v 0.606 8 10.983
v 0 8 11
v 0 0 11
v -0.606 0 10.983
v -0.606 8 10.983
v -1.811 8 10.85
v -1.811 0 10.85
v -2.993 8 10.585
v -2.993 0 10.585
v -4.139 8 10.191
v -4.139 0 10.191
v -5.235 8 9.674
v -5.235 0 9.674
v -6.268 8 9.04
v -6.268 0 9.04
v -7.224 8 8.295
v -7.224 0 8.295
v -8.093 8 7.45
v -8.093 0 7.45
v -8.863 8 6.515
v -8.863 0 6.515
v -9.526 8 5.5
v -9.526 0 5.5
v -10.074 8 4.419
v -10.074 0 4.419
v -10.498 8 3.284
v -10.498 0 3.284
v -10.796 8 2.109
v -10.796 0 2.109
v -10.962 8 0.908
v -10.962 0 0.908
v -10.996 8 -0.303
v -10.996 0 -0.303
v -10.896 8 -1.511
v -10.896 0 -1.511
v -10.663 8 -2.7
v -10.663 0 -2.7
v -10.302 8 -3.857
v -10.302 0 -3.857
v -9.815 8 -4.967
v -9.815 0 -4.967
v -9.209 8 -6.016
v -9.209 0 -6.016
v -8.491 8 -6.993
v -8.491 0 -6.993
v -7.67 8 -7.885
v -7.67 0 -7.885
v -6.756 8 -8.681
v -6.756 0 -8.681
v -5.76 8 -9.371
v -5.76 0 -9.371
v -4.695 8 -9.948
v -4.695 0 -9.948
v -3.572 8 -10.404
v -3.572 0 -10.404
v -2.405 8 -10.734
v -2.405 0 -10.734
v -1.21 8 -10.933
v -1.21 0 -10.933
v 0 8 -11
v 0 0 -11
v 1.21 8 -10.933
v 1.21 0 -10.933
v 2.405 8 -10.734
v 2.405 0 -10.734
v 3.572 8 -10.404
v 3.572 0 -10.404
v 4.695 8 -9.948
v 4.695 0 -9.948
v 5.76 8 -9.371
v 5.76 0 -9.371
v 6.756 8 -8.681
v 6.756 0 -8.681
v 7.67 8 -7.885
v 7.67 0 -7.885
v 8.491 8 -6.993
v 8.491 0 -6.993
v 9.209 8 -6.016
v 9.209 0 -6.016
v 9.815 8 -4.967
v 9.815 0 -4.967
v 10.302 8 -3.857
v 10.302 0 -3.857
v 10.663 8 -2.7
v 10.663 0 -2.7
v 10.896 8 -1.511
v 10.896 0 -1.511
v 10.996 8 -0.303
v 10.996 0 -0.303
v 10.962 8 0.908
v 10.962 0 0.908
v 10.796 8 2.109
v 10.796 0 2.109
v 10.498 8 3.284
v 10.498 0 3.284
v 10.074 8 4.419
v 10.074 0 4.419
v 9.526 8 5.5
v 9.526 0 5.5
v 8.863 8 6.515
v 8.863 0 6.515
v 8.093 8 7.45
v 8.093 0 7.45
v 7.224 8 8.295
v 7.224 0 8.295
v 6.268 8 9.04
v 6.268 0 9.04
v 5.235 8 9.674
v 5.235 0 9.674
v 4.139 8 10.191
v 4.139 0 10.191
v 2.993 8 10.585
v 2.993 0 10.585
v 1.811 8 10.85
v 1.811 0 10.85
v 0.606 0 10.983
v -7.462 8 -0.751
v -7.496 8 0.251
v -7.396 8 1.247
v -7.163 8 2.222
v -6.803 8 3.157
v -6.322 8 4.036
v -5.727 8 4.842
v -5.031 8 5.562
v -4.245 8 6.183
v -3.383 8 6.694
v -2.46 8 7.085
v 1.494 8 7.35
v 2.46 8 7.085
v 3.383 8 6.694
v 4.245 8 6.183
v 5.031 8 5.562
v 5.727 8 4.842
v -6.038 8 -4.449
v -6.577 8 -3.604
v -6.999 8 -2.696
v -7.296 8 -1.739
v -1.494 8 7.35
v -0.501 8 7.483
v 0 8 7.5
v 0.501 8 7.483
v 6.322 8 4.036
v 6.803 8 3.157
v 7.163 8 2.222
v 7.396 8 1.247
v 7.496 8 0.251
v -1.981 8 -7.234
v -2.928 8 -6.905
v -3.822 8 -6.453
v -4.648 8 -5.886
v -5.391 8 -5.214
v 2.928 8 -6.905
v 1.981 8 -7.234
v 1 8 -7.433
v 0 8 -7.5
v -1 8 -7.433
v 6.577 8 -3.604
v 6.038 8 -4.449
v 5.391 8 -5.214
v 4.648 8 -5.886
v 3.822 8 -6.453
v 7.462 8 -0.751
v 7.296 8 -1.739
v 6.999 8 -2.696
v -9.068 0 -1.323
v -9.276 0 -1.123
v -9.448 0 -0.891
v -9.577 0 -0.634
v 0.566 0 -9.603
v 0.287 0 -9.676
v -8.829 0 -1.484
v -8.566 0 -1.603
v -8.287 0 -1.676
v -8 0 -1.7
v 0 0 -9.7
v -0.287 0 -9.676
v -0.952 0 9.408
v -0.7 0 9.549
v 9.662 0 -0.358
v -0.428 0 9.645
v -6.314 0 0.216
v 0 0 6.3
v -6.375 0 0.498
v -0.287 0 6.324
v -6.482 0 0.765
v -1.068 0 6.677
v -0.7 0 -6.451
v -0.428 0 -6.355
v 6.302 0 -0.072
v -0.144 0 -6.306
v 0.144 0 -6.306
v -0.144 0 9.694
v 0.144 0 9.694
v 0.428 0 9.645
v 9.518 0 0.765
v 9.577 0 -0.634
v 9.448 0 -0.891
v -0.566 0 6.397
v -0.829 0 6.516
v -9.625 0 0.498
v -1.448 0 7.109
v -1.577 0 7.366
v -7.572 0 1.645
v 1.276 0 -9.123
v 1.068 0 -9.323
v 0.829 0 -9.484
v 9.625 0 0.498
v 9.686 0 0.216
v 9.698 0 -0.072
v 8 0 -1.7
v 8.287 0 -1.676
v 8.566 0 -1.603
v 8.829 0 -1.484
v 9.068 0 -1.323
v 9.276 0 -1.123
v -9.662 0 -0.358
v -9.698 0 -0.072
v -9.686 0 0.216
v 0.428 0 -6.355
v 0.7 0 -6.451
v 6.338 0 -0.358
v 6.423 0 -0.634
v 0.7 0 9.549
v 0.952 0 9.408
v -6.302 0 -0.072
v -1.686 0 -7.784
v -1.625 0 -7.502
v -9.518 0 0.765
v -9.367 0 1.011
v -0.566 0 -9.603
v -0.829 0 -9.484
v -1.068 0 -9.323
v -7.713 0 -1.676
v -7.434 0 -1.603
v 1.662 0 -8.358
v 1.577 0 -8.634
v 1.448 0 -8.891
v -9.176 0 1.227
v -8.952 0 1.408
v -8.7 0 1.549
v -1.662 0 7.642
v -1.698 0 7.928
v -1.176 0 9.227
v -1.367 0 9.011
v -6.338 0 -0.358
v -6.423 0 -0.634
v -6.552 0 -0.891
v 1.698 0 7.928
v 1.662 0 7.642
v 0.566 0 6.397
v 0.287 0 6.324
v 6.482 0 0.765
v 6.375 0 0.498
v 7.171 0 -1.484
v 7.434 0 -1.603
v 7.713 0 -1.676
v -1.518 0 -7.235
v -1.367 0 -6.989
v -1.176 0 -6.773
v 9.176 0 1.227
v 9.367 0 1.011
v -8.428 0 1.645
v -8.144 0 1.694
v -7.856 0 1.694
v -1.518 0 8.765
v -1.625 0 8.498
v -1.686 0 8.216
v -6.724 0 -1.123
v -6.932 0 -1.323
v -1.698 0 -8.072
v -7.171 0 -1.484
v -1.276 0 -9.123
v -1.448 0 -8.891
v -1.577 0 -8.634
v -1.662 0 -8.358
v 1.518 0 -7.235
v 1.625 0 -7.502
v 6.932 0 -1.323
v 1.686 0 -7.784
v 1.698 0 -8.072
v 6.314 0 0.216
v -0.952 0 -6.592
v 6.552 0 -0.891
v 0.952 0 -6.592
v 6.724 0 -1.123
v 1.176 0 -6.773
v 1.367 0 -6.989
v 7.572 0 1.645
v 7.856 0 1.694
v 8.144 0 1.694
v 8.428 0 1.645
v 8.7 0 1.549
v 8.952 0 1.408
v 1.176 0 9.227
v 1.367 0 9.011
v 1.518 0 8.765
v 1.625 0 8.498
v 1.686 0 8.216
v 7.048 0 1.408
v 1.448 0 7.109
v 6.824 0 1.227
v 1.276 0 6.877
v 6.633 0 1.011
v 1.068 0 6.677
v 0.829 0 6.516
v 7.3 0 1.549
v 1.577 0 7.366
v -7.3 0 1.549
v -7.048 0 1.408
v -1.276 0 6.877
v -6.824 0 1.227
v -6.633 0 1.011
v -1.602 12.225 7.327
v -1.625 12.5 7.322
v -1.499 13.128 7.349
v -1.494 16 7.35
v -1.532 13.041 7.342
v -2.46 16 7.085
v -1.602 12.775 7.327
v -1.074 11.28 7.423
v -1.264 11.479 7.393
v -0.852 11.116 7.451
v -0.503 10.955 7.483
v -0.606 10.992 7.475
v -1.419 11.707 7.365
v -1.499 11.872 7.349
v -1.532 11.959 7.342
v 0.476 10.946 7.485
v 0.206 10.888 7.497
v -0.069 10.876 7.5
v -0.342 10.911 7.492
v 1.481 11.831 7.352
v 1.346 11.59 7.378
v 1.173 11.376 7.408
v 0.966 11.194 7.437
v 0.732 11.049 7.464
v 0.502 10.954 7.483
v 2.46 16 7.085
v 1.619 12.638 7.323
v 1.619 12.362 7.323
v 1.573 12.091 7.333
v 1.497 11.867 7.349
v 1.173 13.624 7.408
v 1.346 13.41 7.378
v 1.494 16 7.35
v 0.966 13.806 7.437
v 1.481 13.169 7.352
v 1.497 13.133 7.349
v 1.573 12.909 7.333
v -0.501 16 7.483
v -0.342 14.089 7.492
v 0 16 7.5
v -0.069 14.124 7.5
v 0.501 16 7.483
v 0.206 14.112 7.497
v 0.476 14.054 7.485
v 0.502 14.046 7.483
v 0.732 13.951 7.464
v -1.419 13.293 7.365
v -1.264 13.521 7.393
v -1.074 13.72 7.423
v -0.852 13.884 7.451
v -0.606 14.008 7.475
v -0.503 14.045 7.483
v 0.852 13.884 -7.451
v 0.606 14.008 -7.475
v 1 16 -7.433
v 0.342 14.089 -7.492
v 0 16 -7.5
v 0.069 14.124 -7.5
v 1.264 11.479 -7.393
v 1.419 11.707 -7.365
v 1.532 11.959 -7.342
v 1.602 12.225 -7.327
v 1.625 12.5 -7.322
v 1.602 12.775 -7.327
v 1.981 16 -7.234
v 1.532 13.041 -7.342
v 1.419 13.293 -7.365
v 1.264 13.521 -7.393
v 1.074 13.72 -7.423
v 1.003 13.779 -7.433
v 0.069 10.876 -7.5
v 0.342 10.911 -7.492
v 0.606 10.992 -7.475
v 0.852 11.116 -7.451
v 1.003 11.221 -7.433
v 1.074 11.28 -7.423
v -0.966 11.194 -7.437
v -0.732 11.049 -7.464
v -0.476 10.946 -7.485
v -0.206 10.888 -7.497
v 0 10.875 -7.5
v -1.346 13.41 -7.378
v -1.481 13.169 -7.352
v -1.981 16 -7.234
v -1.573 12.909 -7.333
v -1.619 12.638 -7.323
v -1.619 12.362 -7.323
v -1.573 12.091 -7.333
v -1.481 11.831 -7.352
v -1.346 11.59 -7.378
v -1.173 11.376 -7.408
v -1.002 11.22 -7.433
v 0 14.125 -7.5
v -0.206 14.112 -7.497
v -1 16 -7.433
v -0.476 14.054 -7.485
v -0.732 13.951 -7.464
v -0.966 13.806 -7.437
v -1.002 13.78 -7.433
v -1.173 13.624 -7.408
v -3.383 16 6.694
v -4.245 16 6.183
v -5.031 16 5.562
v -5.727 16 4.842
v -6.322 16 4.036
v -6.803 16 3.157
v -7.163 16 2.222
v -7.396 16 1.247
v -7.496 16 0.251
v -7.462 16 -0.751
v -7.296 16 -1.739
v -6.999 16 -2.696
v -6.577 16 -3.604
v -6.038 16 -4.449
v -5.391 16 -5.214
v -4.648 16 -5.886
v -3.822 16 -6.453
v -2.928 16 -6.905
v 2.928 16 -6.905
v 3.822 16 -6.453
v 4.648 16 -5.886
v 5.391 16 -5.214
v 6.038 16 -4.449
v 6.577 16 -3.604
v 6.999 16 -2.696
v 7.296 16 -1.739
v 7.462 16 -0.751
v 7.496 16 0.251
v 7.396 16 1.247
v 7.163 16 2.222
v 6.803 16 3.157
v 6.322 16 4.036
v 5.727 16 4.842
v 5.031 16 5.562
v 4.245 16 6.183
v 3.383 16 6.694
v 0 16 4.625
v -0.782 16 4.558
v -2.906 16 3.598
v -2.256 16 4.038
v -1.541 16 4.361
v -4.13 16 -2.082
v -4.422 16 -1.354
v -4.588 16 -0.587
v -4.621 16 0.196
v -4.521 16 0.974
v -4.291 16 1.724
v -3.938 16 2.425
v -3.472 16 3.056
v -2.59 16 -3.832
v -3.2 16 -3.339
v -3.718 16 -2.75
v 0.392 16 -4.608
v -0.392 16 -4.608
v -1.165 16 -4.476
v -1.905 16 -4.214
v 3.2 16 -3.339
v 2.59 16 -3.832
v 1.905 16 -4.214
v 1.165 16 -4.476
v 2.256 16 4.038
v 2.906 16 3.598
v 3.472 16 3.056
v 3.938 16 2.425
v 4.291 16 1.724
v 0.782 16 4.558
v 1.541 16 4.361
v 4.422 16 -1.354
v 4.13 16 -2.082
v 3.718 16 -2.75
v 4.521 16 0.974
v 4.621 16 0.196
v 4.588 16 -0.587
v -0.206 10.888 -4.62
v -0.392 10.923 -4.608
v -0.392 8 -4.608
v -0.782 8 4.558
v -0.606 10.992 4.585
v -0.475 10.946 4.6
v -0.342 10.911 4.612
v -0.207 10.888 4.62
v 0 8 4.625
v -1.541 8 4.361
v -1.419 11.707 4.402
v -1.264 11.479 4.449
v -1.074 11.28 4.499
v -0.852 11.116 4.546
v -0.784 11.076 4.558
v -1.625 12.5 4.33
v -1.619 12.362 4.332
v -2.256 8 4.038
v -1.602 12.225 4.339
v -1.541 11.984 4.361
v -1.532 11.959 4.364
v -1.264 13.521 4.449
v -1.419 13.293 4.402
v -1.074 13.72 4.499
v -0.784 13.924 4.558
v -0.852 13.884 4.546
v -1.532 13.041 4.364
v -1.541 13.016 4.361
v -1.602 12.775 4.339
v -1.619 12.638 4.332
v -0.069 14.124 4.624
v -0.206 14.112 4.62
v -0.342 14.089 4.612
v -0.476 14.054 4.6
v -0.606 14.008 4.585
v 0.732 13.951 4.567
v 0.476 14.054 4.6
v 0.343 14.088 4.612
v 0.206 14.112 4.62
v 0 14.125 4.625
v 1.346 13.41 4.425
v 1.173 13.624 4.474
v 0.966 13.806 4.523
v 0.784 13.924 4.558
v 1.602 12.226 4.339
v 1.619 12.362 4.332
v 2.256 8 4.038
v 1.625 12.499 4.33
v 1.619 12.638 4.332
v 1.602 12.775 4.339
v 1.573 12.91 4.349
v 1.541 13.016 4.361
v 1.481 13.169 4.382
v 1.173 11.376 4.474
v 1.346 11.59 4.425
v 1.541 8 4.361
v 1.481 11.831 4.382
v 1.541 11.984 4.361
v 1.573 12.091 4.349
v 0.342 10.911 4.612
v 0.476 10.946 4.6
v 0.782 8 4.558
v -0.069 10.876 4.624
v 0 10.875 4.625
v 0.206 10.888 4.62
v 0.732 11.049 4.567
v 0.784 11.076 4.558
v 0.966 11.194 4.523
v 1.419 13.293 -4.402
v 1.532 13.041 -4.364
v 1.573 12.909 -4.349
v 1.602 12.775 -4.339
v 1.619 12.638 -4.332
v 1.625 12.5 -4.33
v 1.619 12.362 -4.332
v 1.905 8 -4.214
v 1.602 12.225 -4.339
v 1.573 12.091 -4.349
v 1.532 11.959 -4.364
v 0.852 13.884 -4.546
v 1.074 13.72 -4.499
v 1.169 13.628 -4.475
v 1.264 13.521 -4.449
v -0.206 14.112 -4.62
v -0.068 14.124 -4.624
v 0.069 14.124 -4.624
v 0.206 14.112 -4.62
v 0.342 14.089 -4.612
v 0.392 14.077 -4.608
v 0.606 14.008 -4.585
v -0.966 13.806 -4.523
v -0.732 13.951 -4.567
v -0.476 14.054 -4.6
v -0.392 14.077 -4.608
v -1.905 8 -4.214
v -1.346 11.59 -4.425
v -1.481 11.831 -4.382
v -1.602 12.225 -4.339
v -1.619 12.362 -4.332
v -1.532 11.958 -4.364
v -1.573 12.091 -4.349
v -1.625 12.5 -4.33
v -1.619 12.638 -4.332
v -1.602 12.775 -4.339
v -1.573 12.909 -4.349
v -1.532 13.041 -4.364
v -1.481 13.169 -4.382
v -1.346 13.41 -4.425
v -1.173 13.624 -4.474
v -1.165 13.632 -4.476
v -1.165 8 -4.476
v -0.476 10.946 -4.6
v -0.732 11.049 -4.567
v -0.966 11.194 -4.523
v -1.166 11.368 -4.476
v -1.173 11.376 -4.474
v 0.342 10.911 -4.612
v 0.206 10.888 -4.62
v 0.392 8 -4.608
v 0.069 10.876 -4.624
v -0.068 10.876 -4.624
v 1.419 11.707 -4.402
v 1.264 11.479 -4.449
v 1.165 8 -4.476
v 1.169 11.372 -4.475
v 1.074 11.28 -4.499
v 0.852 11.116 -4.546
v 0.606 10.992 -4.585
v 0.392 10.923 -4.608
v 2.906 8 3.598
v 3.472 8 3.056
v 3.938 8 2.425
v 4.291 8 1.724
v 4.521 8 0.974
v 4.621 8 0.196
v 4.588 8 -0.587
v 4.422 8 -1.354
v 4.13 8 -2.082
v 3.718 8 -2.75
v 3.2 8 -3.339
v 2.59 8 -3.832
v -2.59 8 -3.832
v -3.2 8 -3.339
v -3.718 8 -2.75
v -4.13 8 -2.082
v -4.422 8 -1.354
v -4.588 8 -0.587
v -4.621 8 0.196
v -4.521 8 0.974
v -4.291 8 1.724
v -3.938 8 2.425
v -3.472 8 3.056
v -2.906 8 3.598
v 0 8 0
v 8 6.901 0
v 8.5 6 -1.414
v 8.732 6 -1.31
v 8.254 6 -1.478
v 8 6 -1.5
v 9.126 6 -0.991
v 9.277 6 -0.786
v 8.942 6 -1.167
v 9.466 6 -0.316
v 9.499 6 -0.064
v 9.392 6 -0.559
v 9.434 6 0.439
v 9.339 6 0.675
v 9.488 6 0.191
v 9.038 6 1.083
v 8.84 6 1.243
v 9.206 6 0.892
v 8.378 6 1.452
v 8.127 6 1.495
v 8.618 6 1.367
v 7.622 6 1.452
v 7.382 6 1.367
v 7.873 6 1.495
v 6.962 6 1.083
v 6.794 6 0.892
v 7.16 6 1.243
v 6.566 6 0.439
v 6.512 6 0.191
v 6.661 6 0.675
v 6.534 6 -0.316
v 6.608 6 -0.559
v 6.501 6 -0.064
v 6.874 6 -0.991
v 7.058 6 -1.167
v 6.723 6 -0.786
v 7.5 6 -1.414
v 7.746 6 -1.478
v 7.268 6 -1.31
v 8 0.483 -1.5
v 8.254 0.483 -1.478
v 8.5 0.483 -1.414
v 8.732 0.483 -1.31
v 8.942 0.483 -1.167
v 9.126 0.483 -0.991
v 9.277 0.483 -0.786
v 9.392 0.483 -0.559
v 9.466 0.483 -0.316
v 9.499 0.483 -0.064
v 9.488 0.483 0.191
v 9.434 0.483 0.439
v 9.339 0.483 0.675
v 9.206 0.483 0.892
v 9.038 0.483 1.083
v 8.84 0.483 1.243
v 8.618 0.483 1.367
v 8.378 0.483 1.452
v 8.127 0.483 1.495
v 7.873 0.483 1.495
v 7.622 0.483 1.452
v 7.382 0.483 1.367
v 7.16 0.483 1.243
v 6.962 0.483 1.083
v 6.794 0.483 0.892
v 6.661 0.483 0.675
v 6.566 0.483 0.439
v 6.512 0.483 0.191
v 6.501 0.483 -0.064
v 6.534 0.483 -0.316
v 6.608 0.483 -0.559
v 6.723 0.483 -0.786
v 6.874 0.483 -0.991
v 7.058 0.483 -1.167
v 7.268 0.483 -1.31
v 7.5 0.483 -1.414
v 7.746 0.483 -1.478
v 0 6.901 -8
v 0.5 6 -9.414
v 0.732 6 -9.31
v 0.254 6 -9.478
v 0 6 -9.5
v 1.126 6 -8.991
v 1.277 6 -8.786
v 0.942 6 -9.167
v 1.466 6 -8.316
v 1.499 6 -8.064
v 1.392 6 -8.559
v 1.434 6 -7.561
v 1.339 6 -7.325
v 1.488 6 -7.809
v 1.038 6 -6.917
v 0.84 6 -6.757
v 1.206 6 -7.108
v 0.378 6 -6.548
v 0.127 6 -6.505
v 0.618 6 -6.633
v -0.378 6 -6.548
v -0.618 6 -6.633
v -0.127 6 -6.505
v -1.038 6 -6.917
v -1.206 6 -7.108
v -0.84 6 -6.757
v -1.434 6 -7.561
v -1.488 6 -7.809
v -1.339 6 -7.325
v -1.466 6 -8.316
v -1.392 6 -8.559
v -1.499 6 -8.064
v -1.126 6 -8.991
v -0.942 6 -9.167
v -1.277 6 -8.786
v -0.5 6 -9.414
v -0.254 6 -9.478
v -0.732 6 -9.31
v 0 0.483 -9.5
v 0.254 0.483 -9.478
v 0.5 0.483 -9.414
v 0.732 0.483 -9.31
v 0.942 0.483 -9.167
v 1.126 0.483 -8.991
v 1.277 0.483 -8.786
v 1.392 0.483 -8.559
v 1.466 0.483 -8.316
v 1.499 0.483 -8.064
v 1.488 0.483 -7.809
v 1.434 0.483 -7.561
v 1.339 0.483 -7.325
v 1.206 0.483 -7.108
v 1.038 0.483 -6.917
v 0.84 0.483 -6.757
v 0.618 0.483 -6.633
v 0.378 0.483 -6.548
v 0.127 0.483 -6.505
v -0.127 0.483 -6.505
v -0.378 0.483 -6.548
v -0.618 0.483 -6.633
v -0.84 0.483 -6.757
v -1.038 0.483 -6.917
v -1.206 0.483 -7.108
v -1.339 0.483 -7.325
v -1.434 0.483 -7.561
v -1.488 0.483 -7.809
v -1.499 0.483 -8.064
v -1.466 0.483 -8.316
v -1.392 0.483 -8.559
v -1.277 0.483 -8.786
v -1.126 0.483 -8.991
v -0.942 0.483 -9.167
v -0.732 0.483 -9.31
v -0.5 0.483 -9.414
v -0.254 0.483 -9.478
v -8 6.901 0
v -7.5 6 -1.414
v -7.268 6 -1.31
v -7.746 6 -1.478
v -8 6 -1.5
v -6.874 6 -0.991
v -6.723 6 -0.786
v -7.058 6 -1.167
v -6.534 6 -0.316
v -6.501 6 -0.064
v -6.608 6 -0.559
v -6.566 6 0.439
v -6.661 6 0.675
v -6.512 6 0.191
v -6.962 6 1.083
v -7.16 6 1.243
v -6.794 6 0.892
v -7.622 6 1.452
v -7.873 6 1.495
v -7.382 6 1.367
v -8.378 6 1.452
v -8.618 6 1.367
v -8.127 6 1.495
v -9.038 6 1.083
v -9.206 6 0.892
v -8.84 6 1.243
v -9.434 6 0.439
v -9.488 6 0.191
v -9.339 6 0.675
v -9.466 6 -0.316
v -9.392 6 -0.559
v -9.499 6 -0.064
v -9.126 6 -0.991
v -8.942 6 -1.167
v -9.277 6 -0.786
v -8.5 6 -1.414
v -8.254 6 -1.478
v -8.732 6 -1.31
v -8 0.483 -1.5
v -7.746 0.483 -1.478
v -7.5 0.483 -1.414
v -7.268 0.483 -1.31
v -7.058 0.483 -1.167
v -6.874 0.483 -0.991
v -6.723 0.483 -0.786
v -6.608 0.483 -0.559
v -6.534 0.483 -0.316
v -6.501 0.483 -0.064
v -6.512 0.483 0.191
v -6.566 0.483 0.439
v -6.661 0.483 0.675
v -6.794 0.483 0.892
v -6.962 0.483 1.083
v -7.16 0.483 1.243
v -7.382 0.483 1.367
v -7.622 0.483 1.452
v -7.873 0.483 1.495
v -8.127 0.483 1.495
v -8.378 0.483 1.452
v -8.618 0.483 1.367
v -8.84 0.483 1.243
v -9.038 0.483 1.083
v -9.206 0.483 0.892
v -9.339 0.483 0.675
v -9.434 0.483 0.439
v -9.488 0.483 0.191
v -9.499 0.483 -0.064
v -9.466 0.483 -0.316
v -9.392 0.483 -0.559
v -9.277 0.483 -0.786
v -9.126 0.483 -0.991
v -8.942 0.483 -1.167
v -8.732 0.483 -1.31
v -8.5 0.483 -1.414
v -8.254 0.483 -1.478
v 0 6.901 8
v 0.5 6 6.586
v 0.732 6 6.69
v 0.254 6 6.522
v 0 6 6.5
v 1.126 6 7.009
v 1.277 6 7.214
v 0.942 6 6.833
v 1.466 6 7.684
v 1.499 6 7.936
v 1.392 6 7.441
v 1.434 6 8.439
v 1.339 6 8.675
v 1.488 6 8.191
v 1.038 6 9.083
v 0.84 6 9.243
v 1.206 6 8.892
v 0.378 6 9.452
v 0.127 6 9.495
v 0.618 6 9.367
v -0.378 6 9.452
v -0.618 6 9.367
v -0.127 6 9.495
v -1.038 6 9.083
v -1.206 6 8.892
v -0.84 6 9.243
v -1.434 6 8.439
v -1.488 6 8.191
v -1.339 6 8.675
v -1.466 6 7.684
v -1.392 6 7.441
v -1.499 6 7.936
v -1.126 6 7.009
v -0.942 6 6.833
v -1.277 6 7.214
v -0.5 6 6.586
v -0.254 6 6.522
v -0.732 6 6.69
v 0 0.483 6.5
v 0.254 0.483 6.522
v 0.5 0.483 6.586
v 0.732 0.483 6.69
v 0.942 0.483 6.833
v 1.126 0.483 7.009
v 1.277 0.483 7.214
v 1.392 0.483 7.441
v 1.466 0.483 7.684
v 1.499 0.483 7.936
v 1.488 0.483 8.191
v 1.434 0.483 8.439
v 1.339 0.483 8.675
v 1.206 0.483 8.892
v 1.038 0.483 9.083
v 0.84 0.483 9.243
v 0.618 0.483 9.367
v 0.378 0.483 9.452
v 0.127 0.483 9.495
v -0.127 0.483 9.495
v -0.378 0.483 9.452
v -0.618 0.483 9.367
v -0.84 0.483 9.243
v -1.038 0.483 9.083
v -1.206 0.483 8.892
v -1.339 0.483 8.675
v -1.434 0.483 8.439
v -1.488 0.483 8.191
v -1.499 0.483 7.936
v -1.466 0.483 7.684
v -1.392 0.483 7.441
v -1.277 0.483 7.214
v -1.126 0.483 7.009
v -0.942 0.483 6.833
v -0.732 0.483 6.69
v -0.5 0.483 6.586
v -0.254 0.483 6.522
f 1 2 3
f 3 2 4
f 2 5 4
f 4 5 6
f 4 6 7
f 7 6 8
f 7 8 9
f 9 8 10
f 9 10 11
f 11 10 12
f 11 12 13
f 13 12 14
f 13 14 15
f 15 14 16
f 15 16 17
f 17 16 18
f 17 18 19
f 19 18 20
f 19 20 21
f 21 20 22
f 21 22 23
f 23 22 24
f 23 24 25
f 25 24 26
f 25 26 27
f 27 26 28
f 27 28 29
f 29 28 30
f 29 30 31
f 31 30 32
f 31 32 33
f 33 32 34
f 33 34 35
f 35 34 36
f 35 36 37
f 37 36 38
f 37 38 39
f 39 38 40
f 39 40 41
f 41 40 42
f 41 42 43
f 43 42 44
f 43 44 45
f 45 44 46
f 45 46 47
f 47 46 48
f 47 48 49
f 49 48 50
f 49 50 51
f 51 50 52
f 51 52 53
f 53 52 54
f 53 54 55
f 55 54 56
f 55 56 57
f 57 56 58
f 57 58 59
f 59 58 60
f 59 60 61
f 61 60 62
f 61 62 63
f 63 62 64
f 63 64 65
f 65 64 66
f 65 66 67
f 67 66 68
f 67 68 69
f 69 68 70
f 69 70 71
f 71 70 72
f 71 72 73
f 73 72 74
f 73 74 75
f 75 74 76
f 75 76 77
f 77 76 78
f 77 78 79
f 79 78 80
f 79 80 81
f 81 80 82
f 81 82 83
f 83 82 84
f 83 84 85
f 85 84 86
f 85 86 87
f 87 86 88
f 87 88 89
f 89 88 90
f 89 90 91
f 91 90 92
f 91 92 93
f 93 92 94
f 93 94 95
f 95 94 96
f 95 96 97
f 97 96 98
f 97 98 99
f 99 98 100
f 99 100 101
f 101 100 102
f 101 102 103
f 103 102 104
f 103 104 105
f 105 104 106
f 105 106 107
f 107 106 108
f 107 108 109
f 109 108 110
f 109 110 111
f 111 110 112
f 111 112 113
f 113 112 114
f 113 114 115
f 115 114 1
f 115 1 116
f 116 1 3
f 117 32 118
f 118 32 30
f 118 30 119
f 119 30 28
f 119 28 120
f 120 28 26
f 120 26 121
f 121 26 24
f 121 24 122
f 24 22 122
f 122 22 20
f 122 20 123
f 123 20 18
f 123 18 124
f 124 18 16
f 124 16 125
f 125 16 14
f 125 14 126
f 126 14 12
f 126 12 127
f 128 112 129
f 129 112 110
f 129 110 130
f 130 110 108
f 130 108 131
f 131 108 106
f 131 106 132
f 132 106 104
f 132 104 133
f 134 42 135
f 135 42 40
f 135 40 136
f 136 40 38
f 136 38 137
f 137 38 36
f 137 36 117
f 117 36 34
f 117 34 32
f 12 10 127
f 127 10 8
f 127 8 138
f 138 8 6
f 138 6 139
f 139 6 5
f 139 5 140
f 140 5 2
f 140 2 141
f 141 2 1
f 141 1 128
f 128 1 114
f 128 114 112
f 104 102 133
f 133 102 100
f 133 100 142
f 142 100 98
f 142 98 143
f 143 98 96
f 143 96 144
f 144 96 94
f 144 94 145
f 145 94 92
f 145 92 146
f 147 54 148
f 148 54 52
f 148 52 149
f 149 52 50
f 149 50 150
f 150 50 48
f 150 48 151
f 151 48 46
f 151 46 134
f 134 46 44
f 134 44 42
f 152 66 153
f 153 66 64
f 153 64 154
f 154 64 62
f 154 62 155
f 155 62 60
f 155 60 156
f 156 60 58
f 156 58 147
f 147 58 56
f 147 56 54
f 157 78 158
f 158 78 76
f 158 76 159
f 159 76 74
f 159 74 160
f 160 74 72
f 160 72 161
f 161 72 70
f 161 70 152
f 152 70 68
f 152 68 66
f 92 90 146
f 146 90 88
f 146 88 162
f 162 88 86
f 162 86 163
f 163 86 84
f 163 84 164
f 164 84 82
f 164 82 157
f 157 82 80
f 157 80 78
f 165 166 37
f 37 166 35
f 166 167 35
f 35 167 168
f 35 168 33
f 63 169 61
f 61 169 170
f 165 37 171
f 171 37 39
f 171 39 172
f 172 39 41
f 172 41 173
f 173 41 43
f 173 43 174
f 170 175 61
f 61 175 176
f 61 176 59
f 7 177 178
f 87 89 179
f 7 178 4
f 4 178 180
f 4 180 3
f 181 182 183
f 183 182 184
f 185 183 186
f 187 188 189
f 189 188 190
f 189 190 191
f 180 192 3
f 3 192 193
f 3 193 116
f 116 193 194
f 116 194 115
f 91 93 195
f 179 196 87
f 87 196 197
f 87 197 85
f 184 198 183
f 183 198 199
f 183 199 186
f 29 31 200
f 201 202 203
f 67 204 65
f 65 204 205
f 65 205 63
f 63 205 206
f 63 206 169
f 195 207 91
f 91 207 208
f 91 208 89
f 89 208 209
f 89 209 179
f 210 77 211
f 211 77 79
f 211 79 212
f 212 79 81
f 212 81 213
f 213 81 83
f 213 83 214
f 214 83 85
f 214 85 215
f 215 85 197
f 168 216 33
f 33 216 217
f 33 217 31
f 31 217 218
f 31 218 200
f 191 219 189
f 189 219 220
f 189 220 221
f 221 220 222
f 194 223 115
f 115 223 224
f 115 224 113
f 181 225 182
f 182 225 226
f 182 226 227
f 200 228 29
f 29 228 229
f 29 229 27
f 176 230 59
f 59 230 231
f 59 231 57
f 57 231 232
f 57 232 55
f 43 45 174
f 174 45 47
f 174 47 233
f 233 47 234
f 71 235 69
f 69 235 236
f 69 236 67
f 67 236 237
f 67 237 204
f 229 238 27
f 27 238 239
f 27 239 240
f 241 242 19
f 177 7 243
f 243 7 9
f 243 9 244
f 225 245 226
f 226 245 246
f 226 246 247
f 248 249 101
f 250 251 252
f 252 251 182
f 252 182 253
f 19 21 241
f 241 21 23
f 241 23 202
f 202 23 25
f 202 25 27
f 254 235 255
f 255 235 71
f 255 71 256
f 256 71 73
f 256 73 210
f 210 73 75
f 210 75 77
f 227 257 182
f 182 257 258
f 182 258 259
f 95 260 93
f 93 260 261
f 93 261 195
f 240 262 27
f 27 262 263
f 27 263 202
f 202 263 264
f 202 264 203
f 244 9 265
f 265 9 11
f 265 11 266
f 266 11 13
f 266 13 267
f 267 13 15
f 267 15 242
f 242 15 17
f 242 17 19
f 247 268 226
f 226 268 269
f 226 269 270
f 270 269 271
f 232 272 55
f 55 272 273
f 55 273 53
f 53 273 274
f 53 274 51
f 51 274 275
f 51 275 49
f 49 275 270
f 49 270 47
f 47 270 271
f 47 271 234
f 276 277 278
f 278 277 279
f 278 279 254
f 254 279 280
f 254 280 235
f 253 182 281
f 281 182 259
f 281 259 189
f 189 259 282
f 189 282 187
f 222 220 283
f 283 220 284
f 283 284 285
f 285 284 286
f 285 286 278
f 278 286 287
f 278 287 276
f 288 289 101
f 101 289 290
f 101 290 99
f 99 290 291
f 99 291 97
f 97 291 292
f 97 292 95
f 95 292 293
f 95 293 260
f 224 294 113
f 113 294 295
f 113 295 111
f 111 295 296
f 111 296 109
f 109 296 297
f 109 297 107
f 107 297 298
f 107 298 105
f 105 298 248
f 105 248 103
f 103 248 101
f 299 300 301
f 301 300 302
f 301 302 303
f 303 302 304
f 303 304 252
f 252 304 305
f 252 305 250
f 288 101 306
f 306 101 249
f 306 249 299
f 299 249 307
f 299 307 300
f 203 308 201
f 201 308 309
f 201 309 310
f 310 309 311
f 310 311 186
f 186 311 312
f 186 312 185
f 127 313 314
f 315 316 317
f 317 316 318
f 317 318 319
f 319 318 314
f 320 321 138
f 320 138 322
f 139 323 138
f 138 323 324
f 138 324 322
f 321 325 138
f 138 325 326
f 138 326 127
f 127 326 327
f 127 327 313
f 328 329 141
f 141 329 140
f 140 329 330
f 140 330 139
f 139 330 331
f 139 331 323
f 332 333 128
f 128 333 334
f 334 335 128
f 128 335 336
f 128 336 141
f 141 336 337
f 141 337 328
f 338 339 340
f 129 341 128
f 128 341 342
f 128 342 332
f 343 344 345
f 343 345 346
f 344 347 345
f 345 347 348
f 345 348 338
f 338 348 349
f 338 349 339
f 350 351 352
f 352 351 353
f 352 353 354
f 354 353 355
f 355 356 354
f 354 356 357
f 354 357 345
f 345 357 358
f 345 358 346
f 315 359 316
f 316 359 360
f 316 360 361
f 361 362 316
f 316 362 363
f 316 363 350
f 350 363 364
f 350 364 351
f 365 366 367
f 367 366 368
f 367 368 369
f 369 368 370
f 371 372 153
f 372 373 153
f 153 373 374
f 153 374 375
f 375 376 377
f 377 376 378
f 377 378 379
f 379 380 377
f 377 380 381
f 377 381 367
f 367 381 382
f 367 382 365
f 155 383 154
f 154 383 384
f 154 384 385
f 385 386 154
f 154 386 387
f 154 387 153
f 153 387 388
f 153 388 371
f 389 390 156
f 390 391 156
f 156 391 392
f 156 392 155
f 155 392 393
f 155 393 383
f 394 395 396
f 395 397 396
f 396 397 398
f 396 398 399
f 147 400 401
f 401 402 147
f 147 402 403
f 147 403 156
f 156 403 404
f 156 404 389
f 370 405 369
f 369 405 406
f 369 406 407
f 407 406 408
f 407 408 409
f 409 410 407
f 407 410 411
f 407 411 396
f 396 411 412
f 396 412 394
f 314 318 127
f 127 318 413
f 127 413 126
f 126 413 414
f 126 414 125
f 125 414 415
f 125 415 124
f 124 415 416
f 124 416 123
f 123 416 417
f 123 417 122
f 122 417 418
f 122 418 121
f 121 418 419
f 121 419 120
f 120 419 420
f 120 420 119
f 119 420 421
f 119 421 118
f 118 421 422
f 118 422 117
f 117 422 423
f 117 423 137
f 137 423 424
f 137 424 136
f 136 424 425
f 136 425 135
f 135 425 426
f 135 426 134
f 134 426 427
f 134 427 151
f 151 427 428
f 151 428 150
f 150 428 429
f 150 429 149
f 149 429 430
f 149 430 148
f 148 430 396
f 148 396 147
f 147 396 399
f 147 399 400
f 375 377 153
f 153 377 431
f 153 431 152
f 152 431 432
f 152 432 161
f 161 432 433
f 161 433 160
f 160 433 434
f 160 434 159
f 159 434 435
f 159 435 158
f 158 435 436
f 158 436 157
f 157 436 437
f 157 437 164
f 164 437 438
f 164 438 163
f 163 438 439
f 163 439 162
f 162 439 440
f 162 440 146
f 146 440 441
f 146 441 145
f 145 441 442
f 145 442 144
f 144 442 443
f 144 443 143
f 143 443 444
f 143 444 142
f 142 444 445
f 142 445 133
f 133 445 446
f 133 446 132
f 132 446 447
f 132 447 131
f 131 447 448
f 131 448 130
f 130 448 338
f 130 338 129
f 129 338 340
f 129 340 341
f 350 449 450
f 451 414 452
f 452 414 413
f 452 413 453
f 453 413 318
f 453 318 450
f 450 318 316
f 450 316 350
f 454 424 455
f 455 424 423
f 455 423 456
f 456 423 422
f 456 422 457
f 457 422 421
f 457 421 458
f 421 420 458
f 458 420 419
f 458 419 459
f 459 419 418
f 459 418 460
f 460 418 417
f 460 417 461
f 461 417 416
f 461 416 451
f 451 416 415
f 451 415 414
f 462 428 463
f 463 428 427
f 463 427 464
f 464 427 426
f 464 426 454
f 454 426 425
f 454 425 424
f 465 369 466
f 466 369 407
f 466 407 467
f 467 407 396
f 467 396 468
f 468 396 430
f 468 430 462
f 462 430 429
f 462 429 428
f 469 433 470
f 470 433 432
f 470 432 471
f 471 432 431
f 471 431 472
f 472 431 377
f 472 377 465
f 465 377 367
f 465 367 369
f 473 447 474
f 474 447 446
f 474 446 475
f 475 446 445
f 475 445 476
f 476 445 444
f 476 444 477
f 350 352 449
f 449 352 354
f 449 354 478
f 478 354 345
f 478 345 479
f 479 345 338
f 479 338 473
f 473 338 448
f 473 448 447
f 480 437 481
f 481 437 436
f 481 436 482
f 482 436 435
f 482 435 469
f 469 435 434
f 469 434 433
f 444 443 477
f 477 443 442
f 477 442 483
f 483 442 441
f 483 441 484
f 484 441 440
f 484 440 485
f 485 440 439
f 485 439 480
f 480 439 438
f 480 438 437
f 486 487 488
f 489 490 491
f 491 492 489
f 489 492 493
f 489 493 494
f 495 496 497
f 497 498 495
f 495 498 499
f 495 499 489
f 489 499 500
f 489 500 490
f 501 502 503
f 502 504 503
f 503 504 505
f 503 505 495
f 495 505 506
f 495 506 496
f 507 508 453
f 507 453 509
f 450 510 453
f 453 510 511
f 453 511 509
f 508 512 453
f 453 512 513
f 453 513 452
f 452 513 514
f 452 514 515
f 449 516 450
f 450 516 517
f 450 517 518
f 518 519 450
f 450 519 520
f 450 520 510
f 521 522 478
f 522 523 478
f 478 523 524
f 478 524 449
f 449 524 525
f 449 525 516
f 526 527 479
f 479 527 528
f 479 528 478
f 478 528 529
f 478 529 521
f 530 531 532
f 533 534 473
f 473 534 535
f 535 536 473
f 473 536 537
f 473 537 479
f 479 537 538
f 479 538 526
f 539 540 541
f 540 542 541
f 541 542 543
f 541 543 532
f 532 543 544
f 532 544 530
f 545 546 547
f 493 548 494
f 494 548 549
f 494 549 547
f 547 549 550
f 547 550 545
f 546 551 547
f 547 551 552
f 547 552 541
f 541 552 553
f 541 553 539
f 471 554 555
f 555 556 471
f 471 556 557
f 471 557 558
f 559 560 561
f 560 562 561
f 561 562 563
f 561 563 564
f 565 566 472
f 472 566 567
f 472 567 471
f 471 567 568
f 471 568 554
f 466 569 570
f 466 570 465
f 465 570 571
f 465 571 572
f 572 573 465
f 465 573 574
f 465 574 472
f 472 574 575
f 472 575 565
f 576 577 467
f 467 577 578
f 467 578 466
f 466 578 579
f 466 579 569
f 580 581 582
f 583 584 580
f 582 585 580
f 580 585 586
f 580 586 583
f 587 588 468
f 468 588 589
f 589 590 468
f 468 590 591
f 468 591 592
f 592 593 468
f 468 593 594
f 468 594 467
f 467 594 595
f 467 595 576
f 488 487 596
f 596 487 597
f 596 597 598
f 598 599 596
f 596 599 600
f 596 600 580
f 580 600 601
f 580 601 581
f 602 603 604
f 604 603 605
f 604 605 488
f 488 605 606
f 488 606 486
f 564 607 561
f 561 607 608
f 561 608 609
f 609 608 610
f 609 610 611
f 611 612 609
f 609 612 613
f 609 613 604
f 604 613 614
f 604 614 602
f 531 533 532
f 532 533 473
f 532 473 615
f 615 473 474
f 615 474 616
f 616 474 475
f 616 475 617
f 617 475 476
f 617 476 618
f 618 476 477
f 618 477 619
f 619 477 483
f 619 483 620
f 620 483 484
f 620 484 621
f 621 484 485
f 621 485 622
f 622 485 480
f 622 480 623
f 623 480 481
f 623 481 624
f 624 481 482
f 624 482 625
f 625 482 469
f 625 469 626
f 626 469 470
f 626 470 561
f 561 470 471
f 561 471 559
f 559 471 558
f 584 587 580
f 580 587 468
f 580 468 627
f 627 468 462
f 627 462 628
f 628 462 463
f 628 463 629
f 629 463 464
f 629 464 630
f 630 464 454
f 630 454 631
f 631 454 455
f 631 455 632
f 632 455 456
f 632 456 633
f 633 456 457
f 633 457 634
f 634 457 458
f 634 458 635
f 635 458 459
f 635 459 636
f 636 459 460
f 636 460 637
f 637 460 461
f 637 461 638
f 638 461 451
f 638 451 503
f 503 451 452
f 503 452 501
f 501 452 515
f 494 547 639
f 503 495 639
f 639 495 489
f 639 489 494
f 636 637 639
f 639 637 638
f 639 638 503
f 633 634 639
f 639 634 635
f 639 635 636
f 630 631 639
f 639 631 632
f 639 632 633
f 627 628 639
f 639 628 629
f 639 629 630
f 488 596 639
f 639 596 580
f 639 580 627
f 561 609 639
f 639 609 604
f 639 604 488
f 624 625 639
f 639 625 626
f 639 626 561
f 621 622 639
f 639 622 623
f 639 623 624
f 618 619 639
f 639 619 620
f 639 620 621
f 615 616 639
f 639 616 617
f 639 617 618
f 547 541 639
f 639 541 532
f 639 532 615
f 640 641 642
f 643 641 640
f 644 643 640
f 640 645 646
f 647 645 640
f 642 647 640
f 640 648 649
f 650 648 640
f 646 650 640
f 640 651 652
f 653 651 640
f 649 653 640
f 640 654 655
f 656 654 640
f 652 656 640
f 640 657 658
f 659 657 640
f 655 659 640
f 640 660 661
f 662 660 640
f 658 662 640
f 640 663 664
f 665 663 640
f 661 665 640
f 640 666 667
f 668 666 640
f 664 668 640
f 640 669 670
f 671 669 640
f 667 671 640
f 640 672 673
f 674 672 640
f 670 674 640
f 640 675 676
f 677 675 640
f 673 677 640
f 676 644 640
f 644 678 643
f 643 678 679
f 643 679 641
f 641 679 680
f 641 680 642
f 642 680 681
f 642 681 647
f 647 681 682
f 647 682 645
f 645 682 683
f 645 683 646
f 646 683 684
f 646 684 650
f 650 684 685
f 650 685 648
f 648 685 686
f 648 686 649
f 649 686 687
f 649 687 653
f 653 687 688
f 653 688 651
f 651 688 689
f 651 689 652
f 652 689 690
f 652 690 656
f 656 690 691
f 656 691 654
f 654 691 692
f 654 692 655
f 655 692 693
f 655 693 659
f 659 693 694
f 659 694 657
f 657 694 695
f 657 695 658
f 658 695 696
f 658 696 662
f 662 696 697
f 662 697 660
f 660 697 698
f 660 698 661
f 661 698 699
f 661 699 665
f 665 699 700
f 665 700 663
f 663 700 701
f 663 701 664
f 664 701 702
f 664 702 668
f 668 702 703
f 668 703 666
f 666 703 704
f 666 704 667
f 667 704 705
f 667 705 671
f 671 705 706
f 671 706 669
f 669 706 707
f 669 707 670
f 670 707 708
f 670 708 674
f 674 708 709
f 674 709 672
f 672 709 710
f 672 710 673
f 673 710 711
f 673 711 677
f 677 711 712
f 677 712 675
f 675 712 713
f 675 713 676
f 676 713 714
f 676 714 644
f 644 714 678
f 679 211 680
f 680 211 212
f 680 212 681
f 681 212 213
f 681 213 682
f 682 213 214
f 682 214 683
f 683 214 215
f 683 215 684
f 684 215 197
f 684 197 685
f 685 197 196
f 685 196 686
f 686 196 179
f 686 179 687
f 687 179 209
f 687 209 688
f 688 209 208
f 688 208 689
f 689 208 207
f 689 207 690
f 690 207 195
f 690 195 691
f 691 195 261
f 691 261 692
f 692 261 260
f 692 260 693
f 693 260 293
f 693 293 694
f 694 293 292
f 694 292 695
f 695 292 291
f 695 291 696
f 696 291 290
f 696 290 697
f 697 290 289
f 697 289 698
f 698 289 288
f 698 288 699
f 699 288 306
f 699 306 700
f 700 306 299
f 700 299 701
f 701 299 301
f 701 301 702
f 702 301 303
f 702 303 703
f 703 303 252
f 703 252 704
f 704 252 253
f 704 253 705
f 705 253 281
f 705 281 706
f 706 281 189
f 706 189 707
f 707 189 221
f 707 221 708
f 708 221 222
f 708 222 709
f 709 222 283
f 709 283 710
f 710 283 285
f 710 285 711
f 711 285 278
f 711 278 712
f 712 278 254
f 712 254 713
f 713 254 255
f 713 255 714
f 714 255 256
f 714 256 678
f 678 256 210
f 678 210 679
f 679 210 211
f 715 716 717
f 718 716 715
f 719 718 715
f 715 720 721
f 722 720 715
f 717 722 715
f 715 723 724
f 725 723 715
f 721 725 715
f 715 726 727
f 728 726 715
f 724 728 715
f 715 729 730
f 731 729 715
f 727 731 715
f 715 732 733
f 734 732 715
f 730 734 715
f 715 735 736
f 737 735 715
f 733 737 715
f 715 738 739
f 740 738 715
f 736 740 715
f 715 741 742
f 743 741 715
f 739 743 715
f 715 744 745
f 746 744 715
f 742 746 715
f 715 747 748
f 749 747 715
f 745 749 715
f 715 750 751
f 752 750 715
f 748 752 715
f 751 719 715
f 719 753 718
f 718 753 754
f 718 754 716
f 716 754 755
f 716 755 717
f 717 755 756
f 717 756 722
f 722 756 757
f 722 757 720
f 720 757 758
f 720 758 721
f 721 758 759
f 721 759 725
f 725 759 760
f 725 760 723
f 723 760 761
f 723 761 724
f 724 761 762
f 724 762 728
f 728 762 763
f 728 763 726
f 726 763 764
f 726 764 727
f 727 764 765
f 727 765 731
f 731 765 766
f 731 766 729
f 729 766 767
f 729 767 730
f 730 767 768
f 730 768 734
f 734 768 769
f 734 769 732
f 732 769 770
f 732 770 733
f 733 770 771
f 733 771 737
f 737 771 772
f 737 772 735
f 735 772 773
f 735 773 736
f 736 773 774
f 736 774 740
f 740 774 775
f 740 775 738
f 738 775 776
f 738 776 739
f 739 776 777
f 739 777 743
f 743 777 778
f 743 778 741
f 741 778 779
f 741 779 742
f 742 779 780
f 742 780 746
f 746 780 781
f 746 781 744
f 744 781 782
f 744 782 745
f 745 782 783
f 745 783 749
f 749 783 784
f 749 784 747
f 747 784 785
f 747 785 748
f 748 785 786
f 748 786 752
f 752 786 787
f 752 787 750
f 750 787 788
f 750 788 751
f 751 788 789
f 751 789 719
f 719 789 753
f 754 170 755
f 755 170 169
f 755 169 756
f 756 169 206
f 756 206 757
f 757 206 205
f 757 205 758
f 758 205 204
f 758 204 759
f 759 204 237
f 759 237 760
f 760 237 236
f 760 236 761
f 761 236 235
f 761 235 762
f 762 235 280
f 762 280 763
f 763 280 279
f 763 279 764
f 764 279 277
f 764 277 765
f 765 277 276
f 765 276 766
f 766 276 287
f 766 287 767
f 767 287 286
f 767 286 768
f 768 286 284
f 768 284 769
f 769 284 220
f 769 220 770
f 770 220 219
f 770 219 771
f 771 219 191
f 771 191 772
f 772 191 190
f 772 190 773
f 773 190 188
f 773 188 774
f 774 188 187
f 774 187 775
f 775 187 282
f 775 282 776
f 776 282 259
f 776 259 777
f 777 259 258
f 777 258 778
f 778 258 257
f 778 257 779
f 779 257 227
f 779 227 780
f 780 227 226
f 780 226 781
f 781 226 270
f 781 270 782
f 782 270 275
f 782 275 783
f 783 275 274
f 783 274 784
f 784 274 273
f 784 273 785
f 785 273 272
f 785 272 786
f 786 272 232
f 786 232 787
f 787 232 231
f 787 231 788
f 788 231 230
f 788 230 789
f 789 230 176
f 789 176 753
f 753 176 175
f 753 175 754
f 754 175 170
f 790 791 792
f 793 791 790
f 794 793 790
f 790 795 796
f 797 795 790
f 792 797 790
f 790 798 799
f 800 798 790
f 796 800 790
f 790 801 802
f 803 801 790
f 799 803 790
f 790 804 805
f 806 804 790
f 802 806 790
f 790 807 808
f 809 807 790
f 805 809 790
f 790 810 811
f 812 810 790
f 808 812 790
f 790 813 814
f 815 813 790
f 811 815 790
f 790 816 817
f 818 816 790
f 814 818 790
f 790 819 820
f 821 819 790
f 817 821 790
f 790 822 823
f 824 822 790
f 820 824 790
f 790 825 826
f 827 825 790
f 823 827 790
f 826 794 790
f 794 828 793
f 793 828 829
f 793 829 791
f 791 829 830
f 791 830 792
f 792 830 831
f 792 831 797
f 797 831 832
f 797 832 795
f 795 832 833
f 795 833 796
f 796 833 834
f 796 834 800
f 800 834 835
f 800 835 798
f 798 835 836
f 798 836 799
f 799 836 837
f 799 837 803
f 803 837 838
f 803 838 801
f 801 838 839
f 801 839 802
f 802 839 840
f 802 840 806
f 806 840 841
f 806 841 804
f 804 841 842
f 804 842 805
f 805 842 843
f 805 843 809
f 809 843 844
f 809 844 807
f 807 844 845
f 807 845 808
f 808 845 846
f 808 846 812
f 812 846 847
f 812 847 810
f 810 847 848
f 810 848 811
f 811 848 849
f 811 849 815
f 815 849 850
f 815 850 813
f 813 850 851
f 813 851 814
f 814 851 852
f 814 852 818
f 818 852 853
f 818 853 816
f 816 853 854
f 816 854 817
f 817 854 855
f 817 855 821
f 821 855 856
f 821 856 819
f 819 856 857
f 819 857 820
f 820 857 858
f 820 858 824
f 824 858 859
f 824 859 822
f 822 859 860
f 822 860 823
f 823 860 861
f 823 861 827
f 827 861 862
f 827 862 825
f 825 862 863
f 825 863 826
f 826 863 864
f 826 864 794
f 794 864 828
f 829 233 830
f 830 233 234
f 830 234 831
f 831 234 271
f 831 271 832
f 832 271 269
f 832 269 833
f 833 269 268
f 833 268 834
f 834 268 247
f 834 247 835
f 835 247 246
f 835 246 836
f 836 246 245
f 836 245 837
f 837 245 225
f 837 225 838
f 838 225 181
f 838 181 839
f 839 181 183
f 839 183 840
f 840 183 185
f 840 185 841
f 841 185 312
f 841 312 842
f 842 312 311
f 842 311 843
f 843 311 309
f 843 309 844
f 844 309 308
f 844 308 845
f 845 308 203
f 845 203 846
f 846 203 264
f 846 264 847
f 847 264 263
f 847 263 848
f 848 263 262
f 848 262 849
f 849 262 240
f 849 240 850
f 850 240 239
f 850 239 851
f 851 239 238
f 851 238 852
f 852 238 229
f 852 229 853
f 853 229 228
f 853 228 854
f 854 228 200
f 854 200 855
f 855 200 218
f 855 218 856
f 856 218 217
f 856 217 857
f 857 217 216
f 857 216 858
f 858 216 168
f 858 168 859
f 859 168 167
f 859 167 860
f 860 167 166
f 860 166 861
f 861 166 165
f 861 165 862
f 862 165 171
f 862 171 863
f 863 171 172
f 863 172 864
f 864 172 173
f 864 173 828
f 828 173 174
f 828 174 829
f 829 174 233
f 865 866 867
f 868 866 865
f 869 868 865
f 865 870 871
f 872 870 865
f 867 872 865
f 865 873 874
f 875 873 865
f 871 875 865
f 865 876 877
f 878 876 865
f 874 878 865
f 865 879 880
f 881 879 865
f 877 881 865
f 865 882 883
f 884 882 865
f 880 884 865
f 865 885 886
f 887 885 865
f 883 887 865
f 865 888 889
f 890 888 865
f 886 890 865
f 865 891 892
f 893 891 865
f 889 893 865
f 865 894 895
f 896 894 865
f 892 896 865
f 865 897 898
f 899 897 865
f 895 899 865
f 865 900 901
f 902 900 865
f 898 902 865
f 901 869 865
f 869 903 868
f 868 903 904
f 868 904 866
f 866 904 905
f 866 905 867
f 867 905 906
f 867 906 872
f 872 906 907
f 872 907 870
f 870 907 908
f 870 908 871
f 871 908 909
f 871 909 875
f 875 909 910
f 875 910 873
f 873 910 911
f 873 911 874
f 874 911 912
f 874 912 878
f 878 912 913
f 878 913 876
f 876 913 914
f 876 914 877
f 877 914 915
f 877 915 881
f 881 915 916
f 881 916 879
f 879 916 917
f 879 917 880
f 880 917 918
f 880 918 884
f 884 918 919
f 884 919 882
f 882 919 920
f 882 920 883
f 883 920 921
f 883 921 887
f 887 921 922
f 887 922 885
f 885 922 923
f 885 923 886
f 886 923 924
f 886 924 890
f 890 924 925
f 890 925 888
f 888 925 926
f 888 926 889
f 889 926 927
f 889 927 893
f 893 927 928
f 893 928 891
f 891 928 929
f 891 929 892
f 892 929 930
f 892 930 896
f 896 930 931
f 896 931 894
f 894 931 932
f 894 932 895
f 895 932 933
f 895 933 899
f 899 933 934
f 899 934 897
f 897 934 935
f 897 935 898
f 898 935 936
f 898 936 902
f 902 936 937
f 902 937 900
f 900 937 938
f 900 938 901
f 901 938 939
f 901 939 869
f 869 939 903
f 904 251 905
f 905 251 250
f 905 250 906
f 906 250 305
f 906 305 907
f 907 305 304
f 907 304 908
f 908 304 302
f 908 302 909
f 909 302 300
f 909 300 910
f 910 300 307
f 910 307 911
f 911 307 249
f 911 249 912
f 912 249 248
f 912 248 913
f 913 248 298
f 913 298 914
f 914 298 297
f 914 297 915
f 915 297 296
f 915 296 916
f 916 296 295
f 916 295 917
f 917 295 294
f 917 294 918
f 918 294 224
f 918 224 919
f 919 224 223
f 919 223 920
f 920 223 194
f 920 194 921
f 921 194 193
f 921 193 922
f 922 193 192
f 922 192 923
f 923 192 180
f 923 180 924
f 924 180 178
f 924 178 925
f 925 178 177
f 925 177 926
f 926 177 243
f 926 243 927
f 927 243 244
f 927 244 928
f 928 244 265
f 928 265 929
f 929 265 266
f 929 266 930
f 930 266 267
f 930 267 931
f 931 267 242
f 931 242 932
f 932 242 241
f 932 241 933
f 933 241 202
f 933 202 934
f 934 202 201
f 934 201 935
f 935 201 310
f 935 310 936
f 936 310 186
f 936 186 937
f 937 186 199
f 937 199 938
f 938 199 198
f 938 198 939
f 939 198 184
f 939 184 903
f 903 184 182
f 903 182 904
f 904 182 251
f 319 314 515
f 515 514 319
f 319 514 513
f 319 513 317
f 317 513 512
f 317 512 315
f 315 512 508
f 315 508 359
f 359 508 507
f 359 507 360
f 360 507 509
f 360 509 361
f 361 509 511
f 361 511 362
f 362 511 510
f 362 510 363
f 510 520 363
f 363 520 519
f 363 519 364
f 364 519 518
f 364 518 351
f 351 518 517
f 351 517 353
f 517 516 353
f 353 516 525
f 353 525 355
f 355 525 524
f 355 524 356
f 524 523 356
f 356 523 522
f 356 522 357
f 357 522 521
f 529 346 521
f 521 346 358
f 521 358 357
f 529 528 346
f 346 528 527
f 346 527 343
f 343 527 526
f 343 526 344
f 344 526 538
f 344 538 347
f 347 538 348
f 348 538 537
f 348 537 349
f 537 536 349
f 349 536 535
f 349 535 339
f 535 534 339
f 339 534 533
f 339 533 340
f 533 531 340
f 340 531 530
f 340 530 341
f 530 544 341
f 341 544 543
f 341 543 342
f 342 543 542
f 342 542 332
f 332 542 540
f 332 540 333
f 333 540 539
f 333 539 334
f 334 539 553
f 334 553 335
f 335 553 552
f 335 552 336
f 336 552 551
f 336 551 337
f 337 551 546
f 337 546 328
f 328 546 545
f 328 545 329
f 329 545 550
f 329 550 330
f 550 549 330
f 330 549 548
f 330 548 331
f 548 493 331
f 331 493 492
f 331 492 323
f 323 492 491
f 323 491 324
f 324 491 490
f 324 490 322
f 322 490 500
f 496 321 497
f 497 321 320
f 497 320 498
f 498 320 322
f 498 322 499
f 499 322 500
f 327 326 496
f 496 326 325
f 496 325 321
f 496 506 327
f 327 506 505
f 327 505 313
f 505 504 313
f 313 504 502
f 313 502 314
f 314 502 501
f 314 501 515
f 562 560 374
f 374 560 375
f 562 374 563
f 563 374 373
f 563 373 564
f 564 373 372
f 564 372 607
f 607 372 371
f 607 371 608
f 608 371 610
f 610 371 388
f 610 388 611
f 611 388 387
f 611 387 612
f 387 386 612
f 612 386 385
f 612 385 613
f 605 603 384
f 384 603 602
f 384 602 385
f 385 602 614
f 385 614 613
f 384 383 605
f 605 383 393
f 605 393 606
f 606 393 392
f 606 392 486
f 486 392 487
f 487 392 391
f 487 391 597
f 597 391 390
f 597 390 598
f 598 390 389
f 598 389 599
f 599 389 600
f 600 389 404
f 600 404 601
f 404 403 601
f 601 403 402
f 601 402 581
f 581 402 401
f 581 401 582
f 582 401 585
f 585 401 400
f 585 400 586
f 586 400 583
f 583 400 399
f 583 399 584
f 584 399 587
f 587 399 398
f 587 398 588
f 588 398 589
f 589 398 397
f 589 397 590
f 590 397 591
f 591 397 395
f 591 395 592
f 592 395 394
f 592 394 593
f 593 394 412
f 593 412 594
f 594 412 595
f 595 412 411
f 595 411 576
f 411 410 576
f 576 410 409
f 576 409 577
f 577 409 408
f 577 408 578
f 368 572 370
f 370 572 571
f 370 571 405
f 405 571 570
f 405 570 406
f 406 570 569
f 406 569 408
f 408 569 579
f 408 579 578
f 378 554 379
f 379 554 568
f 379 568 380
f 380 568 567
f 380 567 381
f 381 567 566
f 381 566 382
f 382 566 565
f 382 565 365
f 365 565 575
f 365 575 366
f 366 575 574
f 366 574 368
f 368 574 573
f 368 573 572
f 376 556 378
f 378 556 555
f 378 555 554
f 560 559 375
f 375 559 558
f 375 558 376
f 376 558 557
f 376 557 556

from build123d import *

# Parameters (mm, degrees)
SKETCH1_R           = 11
BOSS_EXTRUDE1_DEPTH = 8
SKETCH2_R           = 7.5
BOSS_EXTRUDE2_DEPTH = 8
SKETCH3_R           = 4.625
CUT_EXTRUDE1_DEPTH  = 8
CIRPATTERN1_COUNT   = 4
SKETCH10_W          = 1.625
SKETCH10_H          = 11


with BuildPart() as part:
    # Sketch1 → Boss-Extrude1 (new body)
    with BuildSketch(Plane(origin=(0, 0, 0), x_dir=(1, 0, 0), z_dir=(0, 1, 0))):
        with Locations(Location((0, 0, 0), (0, 0, 270))):
            Circle(SKETCH1_R)
    extrude(amount=BOSS_EXTRUDE1_DEPTH)

    # Sketch2 → Boss-Extrude2 (add)
    with BuildSketch(Plane(origin=(0, 8, 0), x_dir=(1, 0, 0), z_dir=(0, 1, 0))):
        with Locations(Location((0, 0, 0), (0, 0, 270))):
            Circle(SKETCH2_R)
    extrude(amount=BOSS_EXTRUDE2_DEPTH)

    # Sketch3 → Cut-Extrude1 (cut)
    with BuildSketch(Plane(origin=(0, 16, 0), x_dir=(1, 0, 0), z_dir=(0, 1, 0))):
        with Locations(Location((0, 0, 0), (0, 0, 270))):
            Circle(SKETCH3_R)
    extrude(amount=-CUT_EXTRUDE1_DEPTH, mode=Mode.SUBTRACT)

    # Sketch7 → Ø3.0mm Dowel Hole1 (revolve, cut)
    with BuildSketch(Plane(origin=(8, 0, 0), x_dir=(0, 0, -1), z_dir=(1, 0, 0))):
        Polygon((0, 0), (0, 6.901290929), (1.5, 6), (1.5, 0.482842712), (1.7, 0), align=None)
    f_3_0mm_dowel_hole1 = revolve(axis=Axis((8, -6.35, 0), (0, 1, 0)), mode=Mode.SUBTRACT)

    # CirPattern1: Ø3.0mm Dowel Hole1 ×4 about axis
    cirpattern1_axis = Axis((0, 0, 0), (0, 1, 0))
    for i in range(1, CIRPATTERN1_COUNT):
        add(f_3_0mm_dowel_hole1.rotate(cirpattern1_axis, i * 360 / CIRPATTERN1_COUNT), mode=Mode.SUBTRACT)

    # Sketch10 → Ø5.0mm Dowel Hole1 (revolve, cut)
    with BuildSketch(Plane(origin=(0, 12.5, 0), x_dir=(0, 1, 0), z_dir=(1, 0, 0))):
        with Locations((0.8125, 5.5)):
            Rectangle(SKETCH10_W, SKETCH10_H)
    f_5_0mm_dowel_hole1 = revolve(axis=Axis((0, 12.5, -6.35), (0, 0, 1)), mode=Mode.SUBTRACT)

    # Mirror1: Ø5.0mm Dowel Hole1 across plane
    add(f_5_0mm_dowel_hole1.mirror(Plane.XY), mode=Mode.SUBTRACT)


solid = part.part
